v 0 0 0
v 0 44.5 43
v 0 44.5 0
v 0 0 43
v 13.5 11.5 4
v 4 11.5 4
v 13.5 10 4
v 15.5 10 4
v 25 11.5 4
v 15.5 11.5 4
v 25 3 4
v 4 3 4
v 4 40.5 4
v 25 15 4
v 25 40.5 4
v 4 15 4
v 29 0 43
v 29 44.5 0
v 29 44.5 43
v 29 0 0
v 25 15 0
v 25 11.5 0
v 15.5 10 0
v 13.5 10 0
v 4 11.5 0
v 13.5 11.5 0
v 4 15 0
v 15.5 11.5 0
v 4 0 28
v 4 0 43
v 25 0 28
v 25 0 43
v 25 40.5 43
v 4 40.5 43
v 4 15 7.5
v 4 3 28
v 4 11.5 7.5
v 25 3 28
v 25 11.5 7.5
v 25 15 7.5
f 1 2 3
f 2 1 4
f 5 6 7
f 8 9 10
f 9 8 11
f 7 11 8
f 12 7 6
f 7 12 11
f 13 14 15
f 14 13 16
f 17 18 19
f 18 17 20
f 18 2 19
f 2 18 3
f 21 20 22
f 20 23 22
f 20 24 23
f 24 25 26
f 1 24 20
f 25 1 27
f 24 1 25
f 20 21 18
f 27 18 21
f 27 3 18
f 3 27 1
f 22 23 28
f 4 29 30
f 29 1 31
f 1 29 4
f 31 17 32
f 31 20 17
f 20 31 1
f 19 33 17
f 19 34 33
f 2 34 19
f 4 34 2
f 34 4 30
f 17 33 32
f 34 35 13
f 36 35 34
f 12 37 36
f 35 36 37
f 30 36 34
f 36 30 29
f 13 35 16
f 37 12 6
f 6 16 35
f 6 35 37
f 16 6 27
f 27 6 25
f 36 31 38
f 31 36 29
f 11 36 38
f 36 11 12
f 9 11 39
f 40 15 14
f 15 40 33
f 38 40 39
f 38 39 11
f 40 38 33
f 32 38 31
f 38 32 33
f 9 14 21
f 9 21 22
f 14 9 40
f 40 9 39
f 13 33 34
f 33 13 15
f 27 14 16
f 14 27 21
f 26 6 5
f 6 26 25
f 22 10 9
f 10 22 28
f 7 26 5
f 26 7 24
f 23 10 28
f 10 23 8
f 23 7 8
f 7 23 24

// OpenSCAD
// servo motor
// main body dimensions
// 20.2 wide x 39 high x 36.4 deep
// make the cavity 21 mm wide and 37.5 deep X 39 high
// flange is 9 mm from the front, 2.5 mm thick, 8mm deep

difference() {

union() {
    cube([29,44.5,4]);
    cube([4,44.5,43]);
    cube([29,3,28]);

    translate([25,0,0])
    cube([4,44.5,43]);

    translate([0,40.5,0])
    cube([29,4,43]);
}
    color("red")
    translate([4,11.5,-0.5])
    cube([21,3.5,8]);
    translate([13.5,10,-0.5])
    cube([2,3,8]);
}
